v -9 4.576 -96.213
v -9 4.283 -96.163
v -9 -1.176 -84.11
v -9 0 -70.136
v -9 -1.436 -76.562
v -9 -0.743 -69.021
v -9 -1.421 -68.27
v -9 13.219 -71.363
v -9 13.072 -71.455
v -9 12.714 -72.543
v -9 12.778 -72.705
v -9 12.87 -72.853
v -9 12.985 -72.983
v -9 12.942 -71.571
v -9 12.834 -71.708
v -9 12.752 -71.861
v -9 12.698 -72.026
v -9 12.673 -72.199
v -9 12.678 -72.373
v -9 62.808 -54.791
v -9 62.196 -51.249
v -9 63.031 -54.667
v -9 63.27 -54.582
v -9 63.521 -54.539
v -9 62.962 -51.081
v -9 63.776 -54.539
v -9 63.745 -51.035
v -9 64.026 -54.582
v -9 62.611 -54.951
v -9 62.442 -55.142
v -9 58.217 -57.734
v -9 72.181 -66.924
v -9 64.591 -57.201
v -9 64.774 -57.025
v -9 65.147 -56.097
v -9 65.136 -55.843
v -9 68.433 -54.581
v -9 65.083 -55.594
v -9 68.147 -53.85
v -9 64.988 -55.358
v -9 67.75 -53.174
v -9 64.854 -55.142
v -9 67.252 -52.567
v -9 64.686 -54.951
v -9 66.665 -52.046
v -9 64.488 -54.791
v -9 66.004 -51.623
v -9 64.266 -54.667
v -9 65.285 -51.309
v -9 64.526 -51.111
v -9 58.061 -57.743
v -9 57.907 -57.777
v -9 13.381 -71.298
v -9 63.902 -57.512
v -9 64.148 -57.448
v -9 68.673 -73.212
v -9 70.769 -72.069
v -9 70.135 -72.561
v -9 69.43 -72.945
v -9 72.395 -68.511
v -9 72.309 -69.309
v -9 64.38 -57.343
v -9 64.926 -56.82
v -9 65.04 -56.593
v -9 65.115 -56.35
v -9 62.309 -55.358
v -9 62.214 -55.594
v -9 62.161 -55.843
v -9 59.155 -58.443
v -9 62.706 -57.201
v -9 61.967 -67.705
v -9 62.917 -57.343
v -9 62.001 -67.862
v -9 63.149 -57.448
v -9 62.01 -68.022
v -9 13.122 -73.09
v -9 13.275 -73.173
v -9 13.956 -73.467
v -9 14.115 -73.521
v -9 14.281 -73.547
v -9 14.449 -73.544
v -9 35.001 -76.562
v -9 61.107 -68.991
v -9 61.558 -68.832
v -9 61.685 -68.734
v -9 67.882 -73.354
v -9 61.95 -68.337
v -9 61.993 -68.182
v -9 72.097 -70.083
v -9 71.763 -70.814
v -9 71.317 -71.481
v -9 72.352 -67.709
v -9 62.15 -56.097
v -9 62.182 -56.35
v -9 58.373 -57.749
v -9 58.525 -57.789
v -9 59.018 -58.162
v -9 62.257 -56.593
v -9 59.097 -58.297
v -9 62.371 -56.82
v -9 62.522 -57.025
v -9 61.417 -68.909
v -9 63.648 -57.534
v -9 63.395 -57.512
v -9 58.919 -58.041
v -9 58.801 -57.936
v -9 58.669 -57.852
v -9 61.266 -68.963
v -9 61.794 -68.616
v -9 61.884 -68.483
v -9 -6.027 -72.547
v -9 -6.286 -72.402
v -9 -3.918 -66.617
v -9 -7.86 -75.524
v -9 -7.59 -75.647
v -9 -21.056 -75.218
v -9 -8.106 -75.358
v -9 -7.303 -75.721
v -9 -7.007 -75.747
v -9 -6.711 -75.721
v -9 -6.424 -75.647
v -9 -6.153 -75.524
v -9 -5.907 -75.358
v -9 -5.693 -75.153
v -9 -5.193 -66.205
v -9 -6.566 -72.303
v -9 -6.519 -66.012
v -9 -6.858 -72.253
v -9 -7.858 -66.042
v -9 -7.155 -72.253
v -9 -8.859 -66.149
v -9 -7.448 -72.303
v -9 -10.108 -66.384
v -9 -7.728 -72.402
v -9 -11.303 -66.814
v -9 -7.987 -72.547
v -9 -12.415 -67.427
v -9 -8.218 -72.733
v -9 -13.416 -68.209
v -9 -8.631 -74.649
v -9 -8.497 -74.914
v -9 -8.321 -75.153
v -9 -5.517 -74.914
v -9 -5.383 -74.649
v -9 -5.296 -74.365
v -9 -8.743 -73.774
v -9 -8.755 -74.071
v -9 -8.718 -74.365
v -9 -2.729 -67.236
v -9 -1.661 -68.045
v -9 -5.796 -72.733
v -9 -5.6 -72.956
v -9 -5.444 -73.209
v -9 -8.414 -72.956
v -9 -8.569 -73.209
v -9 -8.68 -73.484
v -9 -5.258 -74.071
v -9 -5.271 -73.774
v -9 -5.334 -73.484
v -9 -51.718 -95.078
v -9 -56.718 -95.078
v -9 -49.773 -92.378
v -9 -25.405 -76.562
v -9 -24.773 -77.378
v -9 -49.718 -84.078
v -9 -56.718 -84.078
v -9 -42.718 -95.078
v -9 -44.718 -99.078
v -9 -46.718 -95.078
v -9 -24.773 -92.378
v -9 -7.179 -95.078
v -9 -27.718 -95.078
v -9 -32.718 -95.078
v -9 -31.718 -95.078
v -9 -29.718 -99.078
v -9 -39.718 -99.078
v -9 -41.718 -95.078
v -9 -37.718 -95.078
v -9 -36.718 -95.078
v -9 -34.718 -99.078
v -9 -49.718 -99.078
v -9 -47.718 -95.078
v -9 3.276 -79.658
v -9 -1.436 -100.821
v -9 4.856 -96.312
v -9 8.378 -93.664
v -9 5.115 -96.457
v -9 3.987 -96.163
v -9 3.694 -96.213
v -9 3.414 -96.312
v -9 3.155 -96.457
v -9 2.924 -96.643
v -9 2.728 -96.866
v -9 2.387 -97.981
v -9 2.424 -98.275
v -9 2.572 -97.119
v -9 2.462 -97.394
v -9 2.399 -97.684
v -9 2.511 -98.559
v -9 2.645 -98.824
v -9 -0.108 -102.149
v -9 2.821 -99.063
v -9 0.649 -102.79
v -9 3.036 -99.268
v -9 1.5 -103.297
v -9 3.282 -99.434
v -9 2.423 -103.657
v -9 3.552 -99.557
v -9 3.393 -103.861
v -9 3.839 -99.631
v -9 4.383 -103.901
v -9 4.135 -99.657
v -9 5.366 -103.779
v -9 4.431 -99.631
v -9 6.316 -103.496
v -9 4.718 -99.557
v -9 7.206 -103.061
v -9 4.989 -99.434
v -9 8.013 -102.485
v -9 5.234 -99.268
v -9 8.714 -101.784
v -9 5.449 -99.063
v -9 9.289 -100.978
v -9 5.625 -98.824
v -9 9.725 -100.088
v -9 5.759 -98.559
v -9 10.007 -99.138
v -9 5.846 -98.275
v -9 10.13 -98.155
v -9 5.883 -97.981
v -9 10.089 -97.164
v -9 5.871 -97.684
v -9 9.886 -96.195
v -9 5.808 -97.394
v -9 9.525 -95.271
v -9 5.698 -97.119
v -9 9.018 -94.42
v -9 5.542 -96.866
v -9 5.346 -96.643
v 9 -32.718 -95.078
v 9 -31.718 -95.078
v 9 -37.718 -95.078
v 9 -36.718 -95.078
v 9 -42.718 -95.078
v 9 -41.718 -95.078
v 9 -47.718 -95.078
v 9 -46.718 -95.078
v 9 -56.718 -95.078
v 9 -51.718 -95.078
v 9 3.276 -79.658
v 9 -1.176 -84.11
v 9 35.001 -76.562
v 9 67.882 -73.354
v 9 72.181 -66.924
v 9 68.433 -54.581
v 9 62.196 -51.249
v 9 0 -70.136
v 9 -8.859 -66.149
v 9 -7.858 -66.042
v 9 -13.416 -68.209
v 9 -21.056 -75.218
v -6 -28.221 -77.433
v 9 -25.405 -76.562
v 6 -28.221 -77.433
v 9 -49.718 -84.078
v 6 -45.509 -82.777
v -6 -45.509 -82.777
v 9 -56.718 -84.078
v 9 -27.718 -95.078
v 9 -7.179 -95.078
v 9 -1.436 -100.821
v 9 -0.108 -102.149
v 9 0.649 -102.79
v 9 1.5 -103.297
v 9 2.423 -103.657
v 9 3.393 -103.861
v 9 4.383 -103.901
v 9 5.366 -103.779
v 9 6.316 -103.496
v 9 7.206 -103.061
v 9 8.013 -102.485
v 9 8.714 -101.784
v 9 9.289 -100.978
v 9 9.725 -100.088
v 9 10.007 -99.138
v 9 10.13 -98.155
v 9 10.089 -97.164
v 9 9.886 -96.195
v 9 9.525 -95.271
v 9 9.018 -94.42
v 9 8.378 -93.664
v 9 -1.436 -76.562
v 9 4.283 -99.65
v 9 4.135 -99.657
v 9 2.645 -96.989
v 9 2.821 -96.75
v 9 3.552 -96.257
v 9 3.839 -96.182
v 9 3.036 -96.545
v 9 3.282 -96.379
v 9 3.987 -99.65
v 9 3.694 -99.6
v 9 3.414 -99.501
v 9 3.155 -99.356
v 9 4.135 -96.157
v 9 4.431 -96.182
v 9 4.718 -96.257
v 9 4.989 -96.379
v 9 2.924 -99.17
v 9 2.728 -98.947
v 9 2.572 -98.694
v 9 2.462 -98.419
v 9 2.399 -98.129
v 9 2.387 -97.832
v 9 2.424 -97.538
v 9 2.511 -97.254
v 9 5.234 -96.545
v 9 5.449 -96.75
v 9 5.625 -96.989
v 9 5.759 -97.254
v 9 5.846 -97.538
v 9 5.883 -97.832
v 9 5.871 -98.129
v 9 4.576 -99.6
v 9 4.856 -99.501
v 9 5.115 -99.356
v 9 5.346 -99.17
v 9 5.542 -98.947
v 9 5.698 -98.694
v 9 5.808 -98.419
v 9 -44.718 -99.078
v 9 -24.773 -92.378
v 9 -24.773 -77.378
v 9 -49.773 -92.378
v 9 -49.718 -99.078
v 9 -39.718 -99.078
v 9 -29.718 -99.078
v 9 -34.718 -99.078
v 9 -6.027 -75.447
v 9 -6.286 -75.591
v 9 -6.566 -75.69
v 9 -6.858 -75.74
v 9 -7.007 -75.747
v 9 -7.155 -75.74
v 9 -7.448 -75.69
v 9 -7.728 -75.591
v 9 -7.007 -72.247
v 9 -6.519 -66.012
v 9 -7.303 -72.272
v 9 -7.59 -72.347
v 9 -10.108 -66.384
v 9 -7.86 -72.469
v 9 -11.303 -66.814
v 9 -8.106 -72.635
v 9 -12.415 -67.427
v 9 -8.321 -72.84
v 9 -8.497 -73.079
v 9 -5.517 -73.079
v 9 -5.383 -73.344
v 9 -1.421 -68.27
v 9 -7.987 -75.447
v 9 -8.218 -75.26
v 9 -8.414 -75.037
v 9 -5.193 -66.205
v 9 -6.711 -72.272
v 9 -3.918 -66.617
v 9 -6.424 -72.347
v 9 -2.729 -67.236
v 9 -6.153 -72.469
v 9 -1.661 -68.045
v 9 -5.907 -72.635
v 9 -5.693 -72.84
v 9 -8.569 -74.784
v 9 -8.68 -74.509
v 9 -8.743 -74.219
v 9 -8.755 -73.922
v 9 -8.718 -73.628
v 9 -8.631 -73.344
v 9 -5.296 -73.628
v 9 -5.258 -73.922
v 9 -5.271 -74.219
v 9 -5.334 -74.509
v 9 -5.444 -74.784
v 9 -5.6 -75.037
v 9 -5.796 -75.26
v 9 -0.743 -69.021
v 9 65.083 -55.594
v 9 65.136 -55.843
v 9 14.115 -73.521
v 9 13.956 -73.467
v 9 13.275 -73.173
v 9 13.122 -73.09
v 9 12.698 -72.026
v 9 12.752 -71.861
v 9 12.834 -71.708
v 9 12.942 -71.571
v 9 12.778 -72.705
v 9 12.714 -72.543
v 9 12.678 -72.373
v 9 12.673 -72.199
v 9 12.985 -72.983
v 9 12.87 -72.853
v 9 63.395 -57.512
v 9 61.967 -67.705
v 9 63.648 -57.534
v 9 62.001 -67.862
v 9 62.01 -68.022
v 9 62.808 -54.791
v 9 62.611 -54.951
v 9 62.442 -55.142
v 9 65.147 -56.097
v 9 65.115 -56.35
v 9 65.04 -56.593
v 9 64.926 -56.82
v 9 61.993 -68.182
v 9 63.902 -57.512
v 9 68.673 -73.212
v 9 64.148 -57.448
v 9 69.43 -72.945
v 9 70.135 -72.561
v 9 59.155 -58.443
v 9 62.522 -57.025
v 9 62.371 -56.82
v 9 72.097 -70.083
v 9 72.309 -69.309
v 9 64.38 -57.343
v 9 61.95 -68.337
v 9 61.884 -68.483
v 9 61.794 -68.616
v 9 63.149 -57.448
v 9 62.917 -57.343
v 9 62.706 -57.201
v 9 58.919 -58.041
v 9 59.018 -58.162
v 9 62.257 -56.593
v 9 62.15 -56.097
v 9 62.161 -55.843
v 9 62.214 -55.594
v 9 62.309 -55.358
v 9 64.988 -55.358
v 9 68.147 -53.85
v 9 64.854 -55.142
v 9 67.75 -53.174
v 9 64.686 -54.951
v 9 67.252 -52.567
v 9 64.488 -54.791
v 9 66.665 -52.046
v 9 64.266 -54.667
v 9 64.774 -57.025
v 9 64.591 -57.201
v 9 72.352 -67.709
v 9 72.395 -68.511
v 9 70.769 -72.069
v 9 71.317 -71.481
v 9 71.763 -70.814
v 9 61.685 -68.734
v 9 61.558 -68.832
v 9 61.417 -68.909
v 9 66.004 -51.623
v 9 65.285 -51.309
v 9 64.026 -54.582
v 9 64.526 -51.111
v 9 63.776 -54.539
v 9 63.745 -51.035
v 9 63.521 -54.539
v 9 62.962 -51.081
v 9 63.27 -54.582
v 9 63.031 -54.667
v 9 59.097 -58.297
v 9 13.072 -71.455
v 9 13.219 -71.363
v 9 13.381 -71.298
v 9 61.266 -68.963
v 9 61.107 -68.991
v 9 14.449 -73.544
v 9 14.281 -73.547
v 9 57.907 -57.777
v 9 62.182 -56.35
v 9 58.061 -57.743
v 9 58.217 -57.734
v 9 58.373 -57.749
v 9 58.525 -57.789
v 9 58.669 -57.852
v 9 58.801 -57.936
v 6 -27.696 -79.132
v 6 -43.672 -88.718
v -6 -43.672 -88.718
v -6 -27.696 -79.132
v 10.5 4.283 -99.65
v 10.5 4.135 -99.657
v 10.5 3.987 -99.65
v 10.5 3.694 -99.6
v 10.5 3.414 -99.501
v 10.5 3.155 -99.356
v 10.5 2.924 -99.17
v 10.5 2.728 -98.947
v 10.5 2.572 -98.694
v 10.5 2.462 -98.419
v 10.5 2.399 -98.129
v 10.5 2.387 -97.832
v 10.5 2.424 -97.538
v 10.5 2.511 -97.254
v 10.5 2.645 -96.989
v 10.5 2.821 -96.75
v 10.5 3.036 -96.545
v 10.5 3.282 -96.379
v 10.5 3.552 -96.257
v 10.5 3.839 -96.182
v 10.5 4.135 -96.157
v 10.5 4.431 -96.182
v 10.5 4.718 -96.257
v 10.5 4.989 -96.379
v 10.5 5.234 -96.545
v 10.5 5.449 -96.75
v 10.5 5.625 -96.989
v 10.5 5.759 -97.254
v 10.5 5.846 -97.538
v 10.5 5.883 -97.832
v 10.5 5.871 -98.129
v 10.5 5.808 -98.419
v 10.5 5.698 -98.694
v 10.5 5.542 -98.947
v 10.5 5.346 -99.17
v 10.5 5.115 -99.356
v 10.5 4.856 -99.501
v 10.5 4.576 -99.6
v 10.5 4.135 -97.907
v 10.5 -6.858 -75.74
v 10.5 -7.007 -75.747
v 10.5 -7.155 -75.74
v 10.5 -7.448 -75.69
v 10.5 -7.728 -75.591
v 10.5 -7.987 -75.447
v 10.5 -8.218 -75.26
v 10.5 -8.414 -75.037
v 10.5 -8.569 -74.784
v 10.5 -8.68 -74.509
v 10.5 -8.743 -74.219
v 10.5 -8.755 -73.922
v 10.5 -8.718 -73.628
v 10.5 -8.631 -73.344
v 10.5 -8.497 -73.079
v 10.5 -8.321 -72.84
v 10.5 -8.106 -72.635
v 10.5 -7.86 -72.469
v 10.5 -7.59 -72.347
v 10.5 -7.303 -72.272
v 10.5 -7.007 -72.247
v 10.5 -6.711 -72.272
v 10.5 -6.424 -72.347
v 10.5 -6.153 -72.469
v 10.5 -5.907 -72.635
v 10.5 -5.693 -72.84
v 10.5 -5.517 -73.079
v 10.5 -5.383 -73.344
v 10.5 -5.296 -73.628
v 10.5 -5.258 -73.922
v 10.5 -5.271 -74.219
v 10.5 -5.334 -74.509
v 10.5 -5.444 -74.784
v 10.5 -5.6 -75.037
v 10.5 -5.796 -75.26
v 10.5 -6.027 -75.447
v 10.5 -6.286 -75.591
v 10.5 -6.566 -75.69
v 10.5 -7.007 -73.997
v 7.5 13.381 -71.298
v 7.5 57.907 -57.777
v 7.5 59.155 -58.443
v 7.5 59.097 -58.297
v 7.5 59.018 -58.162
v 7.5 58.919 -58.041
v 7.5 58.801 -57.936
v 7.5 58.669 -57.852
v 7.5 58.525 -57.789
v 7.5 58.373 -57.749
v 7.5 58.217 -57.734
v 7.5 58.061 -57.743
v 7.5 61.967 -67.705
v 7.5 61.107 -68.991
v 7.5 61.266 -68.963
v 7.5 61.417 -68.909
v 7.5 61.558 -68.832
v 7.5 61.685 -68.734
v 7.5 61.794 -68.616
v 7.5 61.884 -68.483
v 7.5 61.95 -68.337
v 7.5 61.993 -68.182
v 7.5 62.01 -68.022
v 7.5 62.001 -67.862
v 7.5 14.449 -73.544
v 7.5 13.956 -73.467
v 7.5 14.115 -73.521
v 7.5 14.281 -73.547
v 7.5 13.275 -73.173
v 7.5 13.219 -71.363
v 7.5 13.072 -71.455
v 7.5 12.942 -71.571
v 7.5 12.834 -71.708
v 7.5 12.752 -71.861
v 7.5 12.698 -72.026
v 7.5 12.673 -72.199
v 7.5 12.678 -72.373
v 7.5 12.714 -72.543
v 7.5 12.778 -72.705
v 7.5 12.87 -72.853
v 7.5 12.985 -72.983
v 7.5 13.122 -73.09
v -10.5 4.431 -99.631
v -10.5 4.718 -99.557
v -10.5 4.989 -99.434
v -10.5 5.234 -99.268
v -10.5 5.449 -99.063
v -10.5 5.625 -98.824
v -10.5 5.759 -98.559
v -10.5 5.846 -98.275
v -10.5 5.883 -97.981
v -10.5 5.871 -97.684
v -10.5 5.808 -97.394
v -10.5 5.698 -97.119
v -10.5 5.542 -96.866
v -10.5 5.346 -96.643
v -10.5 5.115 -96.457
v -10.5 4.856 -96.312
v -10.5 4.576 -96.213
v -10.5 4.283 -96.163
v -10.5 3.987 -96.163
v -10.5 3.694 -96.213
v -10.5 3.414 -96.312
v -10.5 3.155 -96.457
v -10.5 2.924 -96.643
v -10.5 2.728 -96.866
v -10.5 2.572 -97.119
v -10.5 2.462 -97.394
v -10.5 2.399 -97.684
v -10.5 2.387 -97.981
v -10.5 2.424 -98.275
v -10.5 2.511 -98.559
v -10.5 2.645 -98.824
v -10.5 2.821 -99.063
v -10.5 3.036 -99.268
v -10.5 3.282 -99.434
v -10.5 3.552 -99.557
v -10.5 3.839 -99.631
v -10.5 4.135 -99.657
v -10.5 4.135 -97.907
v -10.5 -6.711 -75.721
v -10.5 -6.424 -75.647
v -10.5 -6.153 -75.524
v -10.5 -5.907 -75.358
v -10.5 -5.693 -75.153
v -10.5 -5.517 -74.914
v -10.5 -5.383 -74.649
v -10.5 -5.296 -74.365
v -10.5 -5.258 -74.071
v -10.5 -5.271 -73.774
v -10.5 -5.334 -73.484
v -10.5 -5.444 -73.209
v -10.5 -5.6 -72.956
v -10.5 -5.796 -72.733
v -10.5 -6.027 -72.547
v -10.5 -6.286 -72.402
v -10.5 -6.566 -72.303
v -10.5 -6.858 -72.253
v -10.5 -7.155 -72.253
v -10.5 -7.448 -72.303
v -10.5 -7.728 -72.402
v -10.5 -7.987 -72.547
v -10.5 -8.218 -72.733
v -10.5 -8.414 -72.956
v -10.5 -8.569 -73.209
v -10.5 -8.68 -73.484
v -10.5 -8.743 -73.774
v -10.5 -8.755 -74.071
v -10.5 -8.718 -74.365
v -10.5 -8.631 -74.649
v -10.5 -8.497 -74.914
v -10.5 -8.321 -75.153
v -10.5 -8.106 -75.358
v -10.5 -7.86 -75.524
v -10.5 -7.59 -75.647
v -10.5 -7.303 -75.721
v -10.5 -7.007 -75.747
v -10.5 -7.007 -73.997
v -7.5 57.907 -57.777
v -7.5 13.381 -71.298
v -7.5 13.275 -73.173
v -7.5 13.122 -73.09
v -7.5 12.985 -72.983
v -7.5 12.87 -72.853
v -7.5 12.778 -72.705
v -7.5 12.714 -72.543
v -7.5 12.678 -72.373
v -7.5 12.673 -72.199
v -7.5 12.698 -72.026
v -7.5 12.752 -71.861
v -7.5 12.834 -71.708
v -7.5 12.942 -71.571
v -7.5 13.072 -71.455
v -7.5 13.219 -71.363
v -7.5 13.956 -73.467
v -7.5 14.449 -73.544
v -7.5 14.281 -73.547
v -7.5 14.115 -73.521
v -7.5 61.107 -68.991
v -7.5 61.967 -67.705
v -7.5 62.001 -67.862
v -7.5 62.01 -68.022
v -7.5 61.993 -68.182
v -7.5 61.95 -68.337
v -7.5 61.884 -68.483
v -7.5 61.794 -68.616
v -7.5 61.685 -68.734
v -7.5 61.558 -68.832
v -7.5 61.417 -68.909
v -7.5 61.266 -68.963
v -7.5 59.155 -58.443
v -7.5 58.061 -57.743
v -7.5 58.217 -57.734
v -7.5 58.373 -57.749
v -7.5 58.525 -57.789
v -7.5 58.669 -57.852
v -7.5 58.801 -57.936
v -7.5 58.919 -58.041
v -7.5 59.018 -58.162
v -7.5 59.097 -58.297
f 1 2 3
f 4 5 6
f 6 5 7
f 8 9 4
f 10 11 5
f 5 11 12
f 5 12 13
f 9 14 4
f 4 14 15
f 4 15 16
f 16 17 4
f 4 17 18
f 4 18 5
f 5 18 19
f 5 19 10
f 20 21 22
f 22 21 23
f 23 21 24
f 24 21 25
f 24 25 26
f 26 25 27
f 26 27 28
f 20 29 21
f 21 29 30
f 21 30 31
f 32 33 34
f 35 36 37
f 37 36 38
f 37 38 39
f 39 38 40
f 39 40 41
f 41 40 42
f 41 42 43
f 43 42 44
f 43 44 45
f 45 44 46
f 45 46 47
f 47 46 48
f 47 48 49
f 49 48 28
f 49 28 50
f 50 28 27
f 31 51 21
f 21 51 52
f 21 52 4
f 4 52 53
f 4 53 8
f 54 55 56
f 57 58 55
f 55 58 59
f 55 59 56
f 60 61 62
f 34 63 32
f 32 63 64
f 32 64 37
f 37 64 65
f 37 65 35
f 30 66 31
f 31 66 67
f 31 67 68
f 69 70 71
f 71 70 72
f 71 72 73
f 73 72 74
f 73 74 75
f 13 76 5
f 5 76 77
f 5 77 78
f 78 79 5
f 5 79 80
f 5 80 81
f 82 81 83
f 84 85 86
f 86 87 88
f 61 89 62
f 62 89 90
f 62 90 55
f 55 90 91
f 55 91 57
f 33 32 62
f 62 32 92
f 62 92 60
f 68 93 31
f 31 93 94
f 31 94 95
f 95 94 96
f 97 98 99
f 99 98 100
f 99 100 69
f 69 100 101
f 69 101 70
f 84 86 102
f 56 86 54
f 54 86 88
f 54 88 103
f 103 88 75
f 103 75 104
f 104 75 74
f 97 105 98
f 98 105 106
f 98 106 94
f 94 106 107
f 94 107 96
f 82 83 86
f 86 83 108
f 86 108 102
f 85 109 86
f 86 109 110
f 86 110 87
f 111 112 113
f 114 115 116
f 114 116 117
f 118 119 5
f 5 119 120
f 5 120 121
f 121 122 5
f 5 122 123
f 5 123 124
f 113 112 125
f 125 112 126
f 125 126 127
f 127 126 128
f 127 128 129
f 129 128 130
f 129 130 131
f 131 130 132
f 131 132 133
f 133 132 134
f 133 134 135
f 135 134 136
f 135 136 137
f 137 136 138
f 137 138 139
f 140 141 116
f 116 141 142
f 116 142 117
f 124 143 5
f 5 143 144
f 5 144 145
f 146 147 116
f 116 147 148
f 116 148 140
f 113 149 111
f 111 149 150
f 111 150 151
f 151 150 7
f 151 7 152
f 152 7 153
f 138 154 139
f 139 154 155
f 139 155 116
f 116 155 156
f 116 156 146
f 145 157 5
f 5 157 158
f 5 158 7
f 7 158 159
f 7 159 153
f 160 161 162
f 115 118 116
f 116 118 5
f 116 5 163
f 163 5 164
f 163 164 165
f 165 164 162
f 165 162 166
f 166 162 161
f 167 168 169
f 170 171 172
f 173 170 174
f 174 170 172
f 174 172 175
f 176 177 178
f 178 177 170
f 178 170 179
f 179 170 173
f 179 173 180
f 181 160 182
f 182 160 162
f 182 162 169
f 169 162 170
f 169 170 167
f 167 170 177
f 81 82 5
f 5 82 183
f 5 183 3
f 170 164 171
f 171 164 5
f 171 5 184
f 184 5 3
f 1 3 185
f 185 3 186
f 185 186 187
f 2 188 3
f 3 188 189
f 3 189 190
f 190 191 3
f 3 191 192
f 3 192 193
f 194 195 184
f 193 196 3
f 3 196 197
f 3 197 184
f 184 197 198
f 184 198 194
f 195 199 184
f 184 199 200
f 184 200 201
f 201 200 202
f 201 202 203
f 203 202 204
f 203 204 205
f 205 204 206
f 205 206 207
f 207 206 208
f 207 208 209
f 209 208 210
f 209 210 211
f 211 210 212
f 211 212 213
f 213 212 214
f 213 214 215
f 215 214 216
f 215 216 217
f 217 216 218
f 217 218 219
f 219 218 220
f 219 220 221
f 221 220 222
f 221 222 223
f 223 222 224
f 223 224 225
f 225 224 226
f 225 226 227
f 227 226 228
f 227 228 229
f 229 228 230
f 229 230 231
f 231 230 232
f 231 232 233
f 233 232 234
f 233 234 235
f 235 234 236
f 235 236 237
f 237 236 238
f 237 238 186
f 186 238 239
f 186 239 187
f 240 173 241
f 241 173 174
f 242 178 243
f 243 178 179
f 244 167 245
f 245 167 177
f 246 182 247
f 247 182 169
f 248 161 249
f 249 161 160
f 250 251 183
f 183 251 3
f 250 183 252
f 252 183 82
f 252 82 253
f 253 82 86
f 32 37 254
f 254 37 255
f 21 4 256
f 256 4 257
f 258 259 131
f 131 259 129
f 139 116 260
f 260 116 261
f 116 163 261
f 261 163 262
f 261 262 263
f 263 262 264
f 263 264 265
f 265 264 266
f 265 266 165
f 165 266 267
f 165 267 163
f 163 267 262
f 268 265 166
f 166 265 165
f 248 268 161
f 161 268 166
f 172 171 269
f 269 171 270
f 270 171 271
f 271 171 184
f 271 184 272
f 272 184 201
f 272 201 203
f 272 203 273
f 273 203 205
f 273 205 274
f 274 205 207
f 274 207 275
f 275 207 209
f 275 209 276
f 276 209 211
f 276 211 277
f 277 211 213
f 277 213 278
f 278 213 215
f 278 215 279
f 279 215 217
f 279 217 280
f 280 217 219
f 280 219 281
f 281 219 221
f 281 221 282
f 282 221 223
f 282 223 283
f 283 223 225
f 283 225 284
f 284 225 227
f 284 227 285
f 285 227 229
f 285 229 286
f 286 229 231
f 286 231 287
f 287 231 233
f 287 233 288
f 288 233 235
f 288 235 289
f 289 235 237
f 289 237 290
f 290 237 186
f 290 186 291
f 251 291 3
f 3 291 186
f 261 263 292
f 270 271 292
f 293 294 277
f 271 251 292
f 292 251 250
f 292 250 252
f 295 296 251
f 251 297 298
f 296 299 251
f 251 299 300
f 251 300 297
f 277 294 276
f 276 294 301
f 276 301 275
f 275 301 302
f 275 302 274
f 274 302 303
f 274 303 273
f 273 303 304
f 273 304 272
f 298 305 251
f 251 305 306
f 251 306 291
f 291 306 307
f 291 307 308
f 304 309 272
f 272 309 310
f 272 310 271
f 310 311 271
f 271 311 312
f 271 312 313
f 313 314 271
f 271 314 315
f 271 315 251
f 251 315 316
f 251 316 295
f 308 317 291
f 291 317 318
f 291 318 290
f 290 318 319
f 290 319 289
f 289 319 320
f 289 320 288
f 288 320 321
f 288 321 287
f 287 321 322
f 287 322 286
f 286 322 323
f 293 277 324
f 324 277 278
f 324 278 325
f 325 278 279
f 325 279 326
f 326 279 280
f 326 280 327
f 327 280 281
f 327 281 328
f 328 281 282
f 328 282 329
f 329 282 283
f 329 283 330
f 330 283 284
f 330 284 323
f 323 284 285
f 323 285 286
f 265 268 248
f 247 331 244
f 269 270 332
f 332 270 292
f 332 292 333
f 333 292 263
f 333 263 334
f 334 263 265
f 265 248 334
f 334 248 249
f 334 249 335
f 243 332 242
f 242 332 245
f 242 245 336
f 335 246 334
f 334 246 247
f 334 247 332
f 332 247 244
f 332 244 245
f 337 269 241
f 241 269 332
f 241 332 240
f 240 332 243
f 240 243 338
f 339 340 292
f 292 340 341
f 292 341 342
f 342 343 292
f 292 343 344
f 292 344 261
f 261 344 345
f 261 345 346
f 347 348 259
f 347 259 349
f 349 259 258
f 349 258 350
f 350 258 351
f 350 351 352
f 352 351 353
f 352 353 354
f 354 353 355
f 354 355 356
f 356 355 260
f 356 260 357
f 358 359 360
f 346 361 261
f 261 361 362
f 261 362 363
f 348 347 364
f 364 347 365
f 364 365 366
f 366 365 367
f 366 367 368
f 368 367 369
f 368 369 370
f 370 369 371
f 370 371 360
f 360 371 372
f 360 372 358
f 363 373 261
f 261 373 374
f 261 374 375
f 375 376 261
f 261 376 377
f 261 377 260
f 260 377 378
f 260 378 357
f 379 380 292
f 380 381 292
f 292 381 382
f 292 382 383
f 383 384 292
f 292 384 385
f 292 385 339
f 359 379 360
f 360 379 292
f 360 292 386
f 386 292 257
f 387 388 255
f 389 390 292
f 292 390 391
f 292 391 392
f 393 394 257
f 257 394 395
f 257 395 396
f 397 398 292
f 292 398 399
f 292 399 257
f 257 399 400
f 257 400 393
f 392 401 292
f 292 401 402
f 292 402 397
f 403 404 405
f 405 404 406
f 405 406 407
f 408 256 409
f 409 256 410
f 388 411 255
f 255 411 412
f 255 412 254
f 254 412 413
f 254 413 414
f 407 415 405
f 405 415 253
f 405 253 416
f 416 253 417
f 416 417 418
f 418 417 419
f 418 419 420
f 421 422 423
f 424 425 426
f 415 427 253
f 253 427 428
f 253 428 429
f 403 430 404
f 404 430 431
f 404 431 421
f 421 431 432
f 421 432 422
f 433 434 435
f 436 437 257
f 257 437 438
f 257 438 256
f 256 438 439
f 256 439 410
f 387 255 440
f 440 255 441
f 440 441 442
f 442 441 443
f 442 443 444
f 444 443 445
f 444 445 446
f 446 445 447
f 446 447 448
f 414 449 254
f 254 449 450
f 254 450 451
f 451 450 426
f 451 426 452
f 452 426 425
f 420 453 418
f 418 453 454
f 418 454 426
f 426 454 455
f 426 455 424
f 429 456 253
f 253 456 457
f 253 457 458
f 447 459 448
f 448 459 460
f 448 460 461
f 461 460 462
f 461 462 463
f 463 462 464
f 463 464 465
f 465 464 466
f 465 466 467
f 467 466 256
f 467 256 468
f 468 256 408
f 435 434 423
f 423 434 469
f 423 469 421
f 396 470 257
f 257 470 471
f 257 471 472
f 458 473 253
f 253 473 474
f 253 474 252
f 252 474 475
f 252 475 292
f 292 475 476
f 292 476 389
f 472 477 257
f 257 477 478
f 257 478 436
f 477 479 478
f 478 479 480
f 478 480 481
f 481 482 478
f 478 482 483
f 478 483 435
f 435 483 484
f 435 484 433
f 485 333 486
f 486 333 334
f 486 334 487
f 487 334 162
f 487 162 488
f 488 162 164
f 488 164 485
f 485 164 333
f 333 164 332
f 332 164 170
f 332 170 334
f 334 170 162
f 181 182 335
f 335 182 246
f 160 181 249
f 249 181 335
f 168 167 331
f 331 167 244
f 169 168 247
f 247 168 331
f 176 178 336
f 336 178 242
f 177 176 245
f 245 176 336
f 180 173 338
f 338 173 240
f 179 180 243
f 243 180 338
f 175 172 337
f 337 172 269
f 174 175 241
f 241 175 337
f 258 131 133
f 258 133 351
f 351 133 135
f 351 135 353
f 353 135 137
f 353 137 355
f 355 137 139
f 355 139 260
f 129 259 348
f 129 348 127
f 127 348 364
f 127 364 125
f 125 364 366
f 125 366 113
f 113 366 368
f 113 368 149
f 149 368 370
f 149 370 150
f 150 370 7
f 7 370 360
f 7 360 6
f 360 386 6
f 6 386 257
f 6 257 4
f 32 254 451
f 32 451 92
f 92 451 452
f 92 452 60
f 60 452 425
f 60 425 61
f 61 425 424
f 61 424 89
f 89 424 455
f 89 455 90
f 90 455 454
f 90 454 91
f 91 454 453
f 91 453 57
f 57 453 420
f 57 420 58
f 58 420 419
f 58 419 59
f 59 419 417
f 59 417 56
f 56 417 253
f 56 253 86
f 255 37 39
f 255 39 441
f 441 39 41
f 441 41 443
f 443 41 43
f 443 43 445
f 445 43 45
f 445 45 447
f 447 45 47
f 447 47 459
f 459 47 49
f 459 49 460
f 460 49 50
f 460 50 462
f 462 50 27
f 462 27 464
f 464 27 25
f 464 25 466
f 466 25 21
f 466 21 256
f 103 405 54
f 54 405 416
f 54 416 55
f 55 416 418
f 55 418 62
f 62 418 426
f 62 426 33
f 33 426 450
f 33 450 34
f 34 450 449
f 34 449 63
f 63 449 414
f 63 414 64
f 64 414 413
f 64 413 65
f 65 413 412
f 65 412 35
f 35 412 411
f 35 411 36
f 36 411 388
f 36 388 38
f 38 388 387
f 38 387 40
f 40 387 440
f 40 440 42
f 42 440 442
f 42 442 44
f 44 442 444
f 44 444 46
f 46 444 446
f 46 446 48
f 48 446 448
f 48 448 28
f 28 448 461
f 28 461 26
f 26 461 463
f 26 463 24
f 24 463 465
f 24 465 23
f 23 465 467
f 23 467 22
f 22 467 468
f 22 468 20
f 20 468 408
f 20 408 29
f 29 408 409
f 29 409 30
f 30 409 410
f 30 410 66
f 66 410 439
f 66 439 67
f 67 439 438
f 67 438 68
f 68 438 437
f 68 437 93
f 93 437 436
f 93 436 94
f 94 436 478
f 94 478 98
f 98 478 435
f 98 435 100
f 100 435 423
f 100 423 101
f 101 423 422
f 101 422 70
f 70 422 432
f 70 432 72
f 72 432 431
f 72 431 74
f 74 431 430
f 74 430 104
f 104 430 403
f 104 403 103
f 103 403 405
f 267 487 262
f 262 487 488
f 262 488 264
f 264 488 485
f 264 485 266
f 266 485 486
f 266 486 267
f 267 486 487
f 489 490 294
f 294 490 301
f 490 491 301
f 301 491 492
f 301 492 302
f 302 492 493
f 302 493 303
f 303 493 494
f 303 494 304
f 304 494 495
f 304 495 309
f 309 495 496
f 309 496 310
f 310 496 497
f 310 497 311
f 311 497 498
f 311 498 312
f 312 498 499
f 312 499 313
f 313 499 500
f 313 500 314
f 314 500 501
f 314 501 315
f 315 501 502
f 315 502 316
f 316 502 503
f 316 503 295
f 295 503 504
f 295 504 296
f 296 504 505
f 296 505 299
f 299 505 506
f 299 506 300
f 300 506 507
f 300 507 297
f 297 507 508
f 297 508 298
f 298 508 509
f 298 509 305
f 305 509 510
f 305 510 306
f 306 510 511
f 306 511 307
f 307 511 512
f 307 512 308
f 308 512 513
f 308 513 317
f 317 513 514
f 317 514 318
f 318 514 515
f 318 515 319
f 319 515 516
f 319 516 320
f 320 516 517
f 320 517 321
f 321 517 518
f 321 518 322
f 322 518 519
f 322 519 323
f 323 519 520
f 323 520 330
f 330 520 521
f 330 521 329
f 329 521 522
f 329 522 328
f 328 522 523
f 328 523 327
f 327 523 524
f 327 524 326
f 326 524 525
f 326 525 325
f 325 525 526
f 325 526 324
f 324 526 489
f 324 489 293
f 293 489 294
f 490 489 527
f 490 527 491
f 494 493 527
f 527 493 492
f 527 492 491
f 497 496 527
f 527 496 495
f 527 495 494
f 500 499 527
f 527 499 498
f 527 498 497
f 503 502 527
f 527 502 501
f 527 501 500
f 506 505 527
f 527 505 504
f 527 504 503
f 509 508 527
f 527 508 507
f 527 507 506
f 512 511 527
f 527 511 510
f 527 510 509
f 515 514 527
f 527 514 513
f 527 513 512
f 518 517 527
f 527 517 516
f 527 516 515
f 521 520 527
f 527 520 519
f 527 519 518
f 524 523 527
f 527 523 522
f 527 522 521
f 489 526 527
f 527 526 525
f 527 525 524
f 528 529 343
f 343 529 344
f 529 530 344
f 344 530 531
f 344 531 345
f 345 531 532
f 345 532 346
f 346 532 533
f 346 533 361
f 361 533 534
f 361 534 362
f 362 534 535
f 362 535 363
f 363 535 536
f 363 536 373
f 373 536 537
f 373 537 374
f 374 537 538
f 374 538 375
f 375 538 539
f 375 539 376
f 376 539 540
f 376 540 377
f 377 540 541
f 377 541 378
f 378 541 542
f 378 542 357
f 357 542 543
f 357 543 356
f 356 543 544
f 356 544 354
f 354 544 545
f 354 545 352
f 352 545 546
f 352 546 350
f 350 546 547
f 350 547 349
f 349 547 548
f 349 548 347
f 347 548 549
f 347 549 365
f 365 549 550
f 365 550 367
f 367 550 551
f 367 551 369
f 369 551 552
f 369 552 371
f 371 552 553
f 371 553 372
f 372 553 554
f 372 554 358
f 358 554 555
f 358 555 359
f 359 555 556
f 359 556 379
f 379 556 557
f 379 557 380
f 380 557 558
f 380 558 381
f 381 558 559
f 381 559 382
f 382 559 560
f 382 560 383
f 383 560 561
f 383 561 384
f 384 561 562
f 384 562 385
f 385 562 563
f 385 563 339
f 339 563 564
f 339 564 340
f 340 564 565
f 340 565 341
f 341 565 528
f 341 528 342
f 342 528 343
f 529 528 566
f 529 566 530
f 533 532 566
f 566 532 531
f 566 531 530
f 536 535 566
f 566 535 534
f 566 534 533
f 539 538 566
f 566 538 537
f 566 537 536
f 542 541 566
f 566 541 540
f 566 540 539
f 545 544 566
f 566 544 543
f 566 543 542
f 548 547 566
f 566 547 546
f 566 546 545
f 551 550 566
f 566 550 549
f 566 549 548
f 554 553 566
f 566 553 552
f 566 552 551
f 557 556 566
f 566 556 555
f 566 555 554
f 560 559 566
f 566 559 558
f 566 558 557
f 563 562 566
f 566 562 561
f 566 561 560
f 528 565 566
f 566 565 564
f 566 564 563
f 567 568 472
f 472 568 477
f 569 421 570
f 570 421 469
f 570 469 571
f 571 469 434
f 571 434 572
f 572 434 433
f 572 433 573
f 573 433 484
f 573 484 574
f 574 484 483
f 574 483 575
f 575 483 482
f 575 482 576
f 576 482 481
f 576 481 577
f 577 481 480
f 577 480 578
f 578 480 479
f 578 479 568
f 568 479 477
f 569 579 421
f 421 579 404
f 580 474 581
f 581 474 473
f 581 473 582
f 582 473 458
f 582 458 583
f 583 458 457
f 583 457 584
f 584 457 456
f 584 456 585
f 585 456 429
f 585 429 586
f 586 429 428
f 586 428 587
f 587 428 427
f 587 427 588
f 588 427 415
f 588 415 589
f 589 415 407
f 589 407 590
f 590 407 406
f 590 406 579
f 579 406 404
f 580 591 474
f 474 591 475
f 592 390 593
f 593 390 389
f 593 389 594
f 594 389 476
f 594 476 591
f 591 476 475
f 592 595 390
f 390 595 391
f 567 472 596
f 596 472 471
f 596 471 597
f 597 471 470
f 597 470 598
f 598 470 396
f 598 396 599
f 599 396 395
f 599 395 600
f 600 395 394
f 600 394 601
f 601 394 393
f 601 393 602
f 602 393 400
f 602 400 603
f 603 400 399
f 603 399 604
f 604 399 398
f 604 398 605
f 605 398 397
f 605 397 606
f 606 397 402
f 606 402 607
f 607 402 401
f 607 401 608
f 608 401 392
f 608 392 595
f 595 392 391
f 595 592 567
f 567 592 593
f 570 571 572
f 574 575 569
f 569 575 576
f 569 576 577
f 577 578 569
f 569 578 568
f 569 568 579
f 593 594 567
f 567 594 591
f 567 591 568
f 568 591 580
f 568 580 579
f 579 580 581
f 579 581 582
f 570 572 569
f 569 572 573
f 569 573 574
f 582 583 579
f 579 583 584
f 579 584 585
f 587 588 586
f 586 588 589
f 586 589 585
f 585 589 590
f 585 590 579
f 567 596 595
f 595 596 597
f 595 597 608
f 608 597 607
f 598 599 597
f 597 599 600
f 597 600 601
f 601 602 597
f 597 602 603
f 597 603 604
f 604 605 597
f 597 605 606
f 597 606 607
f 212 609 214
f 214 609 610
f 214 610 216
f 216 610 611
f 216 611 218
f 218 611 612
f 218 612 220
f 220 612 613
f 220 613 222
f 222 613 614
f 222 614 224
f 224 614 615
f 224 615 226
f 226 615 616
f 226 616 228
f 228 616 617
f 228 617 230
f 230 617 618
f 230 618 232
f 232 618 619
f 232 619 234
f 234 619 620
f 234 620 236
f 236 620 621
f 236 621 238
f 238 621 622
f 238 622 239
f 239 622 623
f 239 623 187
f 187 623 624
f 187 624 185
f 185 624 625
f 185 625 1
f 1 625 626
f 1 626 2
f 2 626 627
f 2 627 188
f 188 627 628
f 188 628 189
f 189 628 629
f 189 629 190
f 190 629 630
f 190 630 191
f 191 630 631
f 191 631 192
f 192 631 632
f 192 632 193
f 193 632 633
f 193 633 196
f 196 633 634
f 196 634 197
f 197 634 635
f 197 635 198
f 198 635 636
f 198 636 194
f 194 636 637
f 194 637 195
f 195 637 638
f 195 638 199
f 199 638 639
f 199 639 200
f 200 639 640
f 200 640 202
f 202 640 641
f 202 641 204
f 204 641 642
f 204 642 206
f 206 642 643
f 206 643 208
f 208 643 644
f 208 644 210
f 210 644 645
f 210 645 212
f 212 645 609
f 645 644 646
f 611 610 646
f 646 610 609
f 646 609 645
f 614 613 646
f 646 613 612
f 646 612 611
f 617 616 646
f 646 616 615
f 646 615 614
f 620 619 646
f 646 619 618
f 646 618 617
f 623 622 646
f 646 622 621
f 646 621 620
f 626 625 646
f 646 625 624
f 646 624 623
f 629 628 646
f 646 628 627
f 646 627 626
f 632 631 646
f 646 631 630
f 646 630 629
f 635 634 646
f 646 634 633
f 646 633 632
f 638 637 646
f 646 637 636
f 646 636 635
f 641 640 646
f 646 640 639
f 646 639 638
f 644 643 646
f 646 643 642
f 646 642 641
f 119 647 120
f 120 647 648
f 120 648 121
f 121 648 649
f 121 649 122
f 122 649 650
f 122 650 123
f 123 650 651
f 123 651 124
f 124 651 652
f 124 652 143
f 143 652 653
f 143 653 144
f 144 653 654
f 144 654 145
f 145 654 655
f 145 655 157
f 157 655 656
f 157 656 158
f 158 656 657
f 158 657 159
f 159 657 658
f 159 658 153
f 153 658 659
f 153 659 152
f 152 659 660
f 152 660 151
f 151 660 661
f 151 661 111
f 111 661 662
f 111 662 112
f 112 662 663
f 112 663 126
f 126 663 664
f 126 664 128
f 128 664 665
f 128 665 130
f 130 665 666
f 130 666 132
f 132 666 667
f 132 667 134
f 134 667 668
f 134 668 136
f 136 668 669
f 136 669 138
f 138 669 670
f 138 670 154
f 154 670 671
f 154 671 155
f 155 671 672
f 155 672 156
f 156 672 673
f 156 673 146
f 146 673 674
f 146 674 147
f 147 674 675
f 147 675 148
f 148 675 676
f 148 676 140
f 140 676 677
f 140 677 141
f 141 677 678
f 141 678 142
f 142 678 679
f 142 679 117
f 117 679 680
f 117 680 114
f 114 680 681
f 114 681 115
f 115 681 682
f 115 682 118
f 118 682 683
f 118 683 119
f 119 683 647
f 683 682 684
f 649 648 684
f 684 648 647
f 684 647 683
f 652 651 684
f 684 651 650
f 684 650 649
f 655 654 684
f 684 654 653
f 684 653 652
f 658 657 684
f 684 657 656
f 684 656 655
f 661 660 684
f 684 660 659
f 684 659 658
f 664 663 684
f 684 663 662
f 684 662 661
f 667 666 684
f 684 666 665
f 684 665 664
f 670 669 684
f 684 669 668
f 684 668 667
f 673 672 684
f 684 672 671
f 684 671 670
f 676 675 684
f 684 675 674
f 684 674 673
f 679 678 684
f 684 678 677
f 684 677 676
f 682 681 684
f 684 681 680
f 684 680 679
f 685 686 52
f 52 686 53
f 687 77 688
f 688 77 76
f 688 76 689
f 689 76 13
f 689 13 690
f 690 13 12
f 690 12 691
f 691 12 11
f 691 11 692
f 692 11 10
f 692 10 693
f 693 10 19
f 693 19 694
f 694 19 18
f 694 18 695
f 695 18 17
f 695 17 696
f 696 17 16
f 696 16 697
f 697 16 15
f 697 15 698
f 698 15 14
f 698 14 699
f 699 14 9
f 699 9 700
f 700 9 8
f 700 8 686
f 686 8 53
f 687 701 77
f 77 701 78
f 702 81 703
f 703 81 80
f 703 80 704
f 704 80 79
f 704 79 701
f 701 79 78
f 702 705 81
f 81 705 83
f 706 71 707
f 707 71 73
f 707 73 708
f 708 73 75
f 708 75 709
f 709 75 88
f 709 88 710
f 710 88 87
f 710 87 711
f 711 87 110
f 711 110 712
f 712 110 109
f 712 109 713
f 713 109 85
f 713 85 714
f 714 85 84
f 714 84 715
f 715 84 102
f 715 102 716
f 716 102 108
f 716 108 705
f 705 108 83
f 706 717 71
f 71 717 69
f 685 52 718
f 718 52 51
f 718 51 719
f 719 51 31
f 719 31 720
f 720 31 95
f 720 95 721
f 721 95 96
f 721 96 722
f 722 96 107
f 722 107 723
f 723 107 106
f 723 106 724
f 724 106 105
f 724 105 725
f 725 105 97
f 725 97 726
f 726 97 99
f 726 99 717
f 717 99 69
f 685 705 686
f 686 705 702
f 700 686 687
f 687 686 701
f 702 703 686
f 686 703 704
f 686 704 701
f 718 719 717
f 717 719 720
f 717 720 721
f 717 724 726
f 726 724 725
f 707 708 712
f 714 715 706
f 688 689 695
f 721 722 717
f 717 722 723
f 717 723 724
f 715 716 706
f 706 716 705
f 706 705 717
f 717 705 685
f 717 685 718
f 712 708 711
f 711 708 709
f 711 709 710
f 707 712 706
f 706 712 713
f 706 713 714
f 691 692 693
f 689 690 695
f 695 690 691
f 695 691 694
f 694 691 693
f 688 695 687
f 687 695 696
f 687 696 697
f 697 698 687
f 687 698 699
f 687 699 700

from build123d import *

# Parameters (mm, degrees)
BOSS_EXTRUDE1_DEPTH = 9
CUT_EXTRUDE1_DEPTH  = 25
BOSS_EXTRUDE2_DEPTH = 18
LPATTERN1_COUNT     = 5
LPATTERN1_PITCH     = 5
FILLET2_R           = 8
FILLET3_R           = 5
SKETCH6_R           = 1.5
CUT_EXTRUDE2_DEPTH  = 25
SKETCH7_W           = 12
SKETCH7_H           = 18.094661032
CUT_EXTRUDE3_DEPTH  = 8
SKETCH8_R           = 1.75
BOSS_EXTRUDE3_DEPTH = 1.5
SKETCH12_R          = 1.75
BOSS_EXTRUDE4_DEPTH = 1.5
CUT_EXTRUDE6_DEPTH  = 1.5


with BuildPart() as part:
    # Sketch3 → Boss-Extrude1 (new, symmetric)
    with BuildSketch(Plane(origin=(0, 0, 0), x_dir=(0, 0, -1), z_dir=(1, 0, 0))):
        with BuildLine():
            Line((49.79657451, 66.979899518), (70.136020437, 0))
            Line((70.136020437, 0), (65.359063047, -1.476711918))
            Line((65.359063047, -1.476711918), (66.429336182, -11.476711918))
            Line((66.429336182, -11.476711918), (75.217896234, -21.055919203))
            Line((75.217896234, -21.055919203), (84.07816774, -49.717663547))
            Line((84.07816774, -49.717663547), (84.07816774, -56.717663547))
            Line((84.07816774, -56.717663547), (95.07816774, -56.717663547))
            Line((95.07816774, -56.717663547), (95.07816774, -7.178658436))
            Line((95.07816774, -7.178658436), (102.149235552, -0.107590624))
            ThreePointArc((102.149235552, -0.107590624), (102.149235552, 8.37769075), (93.663954178, 8.37769075))
            Line((93.663954178, 8.37769075), (84.110365879, -1.175897549))
            Line((84.110365879, -1.175897549), (79.658453904, 3.276014426))
            Line((79.658453904, 3.276014426), (72.761111488, 73.953423835))
            Line((72.761111488, 73.953423835), (49.79657451, 66.979899518))
        make_face()
    extrude(amount=BOSS_EXTRUDE1_DEPTH, both=True)

    # Sketch4 → Cut-Extrude1 (cut)
    with BuildSketch(Plane(origin=(9, 0, 0), x_dir=(0, 0, -1), z_dir=(1, 0, 0))):
        Polygon((92.37816774, -49.772884049), (92.37816774, -24.772884049), (77.37816774, -24.772884049), align=None)
    extrude(amount=-CUT_EXTRUDE1_DEPTH, mode=Mode.SUBTRACT)

    # Sketch5 → Boss-Extrude2 (add)
    with BuildSketch(Plane(origin=(9, 0, 0), x_dir=(0, 0, -1), z_dir=(1, 0, 0))):
        Polygon((95.07816774, -47.717663547), (95.07816774, -49.717663547), (99.07816774, -49.717663547), align=None)
        Polygon((99.07816774, -49.717663547), (95.07816774, -49.717663547), (95.07816774, -51.717663547), align=None)
    boss_extrude2 = extrude(amount=-BOSS_EXTRUDE2_DEPTH)

    # LPattern1: Boss-Extrude2 ×5
    with Locations(*[(0, i * LPATTERN1_PITCH, 0) for i in range(1, LPATTERN1_COUNT)]):
        add(boss_extrude2)

    # Fillet2
    # the kernel refuses this fillet: 8 mm, written as the material it takes off along each edge
    with BuildSketch(Plane(origin=(-15.580741663, -11.476711918, -66.429336182), x_dir=(0, 0.9943213171006763, 0.10641953936743088), z_dir=(1, 0, 0))) as fillet2_piece_1:
        with BuildLine():
            CenterArc((FILLET2_R * 0.329037083141, -FILLET2_R), FILLET2_R, 90, 36.426245441)
            Line((-FILLET2_R * 0.264750438373, -FILLET2_R * 0.195378114085), (-FILLET2_R * 0.276626188803, -FILLET2_R * 0.179285676366))
            Line((-FILLET2_R * 0.276626188803, -FILLET2_R * 0.179285676366), (-FILLET2_R * 0.00658074166282, FILLET2_R * 0.02))
            Line((-FILLET2_R * 0.00658074166282, FILLET2_R * 0.02), (FILLET2_R * 0.329037083141, FILLET2_R * 0.02))
            Line((FILLET2_R * 0.329037083141, FILLET2_R * 0.02), (FILLET2_R * 0.329037083141, 0))
        make_face()
    extrude(amount=31.161483326, mode=Mode.SUBTRACT)
    with BuildSketch(Plane(origin=(-25.044809619, -1.476711918, -65.359063047), x_dir=(0, 0.2953423835382918, -0.9553914781313054), z_dir=(1, 0, 0))) as fillet2_piece_2:
        with BuildLine():
            CenterArc((6.618974651, -7.834470057), FILLET2_R, 101.675691656, 67.255197487)
            Line((-1.232195855, -6.298526803), (-1.389219265, -6.267807938))
            Line((-1.389219265, -6.267807938), (-0.15702341, 0.030718865))
            Line((-0.15702341, 0.030718865), (0, 0.16))
            ThreePointArc((0, 0.16), (2.5, 0.16), (4.967620507, 0.156689401))
            Line((4.967620507, 0.156689401), (5, 0))
        make_face()
    extrude(amount=50.089619238, mode=Mode.SUBTRACT)

    # Fillet3
    fillet3_edges = [part.edges().sort_by_distance(p)[0] for p in [
        (0, 66.979899518, -49.79657451),
        (0, 73.953423835, -72.761111488),
    ]]
    fillet(fillet3_edges, radius=FILLET3_R)

    # Sketch6 → Cut-Extrude2 (cut)
    with BuildSketch(Plane(origin=(9, 0, 0), x_dir=(0, 0, -1), z_dir=(1, 0, 0))):
        with Locations((56.033670614, 63.648438547)):
            Circle(SKETCH6_R)
    extrude(amount=-CUT_EXTRUDE2_DEPTH, mode=Mode.SUBTRACT)

    # Sketch7 → Cut-Extrude3 (cut)
    with BuildSketch(Plane(origin=(0, 19.387405719, -62.715557398), x_dir=(1, 0, 0), z_dir=(0, -0.29534238353829306, 0.955391478131305))):
        with Locations((0, -58.879009045)):
            Rectangle(SKETCH7_W, SKETCH7_H)
    extrude(amount=-CUT_EXTRUDE3_DEPTH, mode=Mode.SUBTRACT)

    # Sketch8 → Boss-Extrude3 (add)
    with BuildSketch(Plane(origin=(9, 0, 0), x_dir=(0, 0, -1), z_dir=(1, 0, 0))):
        with Locations((97.906594865, 4.135050063)):
            Circle(SKETCH8_R)
    boss_extrude3 = extrude(amount=BOSS_EXTRUDE3_DEPTH)

    # Sketch12 → Boss-Extrude4 (add)
    with BuildSketch(Plane(origin=(9, 0, 0), x_dir=(0, 0, -1), z_dir=(1, 0, 0))):
        with Locations((73.996626083, -7.006834096)):
            Circle(SKETCH12_R)
    boss_extrude4 = extrude(amount=BOSS_EXTRUDE4_DEPTH)

    # Sketch13 → Cut-Extrude6 (cut)
    with BuildSketch(Plane(origin=(9, 0, 0), x_dir=(0, 0, -1), z_dir=(1, 0, 0))):
        with BuildLine():
            Line((73.173071484, 13.27485534), (73.467077668, 13.955552183))
            ThreePointArc((73.467077668, 13.955552183), (73.53702701, 14.197471144), (73.544321074, 14.449194188))
            Line((73.544321074, 14.449194188), (68.990982491, 61.107480203))
            ThreePointArc((68.990982491, 61.107480203), (68.551531185, 61.841654795), (67.705147046, 61.967208252))
            Line((67.705147046, 61.967208252), (58.443343887, 59.154723523))
            ThreePointArc((58.443343887, 59.154723523), (57.851848811, 58.669007544), (57.777051693, 57.907304302))
            Line((57.777051693, 57.907304302), (71.298187251, 13.380806172))
            ThreePointArc((71.298187251, 13.380806172), (72.198622375, 12.672962595), (73.173071484, 13.27485534))
        make_face()
    cut_extrude6 = extrude(amount=-CUT_EXTRUDE6_DEPTH, mode=Mode.SUBTRACT)

    # Mirror1: Boss-Extrude3, Boss-Extrude4, Cut-Extrude6 across plane
    add(boss_extrude3.mirror(Plane(origin=(0, 0, 0), x_dir=(0, 0, 1), z_dir=(1, 0, 0))))
    add(boss_extrude4.mirror(Plane(origin=(0, 0, 0), x_dir=(0, 0, 1), z_dir=(1, 0, 0))))
    add(cut_extrude6.mirror(Plane(origin=(0, 0, 0), x_dir=(0, 0, 1), z_dir=(1, 0, 0))), mode=Mode.SUBTRACT)


solid = part.part
